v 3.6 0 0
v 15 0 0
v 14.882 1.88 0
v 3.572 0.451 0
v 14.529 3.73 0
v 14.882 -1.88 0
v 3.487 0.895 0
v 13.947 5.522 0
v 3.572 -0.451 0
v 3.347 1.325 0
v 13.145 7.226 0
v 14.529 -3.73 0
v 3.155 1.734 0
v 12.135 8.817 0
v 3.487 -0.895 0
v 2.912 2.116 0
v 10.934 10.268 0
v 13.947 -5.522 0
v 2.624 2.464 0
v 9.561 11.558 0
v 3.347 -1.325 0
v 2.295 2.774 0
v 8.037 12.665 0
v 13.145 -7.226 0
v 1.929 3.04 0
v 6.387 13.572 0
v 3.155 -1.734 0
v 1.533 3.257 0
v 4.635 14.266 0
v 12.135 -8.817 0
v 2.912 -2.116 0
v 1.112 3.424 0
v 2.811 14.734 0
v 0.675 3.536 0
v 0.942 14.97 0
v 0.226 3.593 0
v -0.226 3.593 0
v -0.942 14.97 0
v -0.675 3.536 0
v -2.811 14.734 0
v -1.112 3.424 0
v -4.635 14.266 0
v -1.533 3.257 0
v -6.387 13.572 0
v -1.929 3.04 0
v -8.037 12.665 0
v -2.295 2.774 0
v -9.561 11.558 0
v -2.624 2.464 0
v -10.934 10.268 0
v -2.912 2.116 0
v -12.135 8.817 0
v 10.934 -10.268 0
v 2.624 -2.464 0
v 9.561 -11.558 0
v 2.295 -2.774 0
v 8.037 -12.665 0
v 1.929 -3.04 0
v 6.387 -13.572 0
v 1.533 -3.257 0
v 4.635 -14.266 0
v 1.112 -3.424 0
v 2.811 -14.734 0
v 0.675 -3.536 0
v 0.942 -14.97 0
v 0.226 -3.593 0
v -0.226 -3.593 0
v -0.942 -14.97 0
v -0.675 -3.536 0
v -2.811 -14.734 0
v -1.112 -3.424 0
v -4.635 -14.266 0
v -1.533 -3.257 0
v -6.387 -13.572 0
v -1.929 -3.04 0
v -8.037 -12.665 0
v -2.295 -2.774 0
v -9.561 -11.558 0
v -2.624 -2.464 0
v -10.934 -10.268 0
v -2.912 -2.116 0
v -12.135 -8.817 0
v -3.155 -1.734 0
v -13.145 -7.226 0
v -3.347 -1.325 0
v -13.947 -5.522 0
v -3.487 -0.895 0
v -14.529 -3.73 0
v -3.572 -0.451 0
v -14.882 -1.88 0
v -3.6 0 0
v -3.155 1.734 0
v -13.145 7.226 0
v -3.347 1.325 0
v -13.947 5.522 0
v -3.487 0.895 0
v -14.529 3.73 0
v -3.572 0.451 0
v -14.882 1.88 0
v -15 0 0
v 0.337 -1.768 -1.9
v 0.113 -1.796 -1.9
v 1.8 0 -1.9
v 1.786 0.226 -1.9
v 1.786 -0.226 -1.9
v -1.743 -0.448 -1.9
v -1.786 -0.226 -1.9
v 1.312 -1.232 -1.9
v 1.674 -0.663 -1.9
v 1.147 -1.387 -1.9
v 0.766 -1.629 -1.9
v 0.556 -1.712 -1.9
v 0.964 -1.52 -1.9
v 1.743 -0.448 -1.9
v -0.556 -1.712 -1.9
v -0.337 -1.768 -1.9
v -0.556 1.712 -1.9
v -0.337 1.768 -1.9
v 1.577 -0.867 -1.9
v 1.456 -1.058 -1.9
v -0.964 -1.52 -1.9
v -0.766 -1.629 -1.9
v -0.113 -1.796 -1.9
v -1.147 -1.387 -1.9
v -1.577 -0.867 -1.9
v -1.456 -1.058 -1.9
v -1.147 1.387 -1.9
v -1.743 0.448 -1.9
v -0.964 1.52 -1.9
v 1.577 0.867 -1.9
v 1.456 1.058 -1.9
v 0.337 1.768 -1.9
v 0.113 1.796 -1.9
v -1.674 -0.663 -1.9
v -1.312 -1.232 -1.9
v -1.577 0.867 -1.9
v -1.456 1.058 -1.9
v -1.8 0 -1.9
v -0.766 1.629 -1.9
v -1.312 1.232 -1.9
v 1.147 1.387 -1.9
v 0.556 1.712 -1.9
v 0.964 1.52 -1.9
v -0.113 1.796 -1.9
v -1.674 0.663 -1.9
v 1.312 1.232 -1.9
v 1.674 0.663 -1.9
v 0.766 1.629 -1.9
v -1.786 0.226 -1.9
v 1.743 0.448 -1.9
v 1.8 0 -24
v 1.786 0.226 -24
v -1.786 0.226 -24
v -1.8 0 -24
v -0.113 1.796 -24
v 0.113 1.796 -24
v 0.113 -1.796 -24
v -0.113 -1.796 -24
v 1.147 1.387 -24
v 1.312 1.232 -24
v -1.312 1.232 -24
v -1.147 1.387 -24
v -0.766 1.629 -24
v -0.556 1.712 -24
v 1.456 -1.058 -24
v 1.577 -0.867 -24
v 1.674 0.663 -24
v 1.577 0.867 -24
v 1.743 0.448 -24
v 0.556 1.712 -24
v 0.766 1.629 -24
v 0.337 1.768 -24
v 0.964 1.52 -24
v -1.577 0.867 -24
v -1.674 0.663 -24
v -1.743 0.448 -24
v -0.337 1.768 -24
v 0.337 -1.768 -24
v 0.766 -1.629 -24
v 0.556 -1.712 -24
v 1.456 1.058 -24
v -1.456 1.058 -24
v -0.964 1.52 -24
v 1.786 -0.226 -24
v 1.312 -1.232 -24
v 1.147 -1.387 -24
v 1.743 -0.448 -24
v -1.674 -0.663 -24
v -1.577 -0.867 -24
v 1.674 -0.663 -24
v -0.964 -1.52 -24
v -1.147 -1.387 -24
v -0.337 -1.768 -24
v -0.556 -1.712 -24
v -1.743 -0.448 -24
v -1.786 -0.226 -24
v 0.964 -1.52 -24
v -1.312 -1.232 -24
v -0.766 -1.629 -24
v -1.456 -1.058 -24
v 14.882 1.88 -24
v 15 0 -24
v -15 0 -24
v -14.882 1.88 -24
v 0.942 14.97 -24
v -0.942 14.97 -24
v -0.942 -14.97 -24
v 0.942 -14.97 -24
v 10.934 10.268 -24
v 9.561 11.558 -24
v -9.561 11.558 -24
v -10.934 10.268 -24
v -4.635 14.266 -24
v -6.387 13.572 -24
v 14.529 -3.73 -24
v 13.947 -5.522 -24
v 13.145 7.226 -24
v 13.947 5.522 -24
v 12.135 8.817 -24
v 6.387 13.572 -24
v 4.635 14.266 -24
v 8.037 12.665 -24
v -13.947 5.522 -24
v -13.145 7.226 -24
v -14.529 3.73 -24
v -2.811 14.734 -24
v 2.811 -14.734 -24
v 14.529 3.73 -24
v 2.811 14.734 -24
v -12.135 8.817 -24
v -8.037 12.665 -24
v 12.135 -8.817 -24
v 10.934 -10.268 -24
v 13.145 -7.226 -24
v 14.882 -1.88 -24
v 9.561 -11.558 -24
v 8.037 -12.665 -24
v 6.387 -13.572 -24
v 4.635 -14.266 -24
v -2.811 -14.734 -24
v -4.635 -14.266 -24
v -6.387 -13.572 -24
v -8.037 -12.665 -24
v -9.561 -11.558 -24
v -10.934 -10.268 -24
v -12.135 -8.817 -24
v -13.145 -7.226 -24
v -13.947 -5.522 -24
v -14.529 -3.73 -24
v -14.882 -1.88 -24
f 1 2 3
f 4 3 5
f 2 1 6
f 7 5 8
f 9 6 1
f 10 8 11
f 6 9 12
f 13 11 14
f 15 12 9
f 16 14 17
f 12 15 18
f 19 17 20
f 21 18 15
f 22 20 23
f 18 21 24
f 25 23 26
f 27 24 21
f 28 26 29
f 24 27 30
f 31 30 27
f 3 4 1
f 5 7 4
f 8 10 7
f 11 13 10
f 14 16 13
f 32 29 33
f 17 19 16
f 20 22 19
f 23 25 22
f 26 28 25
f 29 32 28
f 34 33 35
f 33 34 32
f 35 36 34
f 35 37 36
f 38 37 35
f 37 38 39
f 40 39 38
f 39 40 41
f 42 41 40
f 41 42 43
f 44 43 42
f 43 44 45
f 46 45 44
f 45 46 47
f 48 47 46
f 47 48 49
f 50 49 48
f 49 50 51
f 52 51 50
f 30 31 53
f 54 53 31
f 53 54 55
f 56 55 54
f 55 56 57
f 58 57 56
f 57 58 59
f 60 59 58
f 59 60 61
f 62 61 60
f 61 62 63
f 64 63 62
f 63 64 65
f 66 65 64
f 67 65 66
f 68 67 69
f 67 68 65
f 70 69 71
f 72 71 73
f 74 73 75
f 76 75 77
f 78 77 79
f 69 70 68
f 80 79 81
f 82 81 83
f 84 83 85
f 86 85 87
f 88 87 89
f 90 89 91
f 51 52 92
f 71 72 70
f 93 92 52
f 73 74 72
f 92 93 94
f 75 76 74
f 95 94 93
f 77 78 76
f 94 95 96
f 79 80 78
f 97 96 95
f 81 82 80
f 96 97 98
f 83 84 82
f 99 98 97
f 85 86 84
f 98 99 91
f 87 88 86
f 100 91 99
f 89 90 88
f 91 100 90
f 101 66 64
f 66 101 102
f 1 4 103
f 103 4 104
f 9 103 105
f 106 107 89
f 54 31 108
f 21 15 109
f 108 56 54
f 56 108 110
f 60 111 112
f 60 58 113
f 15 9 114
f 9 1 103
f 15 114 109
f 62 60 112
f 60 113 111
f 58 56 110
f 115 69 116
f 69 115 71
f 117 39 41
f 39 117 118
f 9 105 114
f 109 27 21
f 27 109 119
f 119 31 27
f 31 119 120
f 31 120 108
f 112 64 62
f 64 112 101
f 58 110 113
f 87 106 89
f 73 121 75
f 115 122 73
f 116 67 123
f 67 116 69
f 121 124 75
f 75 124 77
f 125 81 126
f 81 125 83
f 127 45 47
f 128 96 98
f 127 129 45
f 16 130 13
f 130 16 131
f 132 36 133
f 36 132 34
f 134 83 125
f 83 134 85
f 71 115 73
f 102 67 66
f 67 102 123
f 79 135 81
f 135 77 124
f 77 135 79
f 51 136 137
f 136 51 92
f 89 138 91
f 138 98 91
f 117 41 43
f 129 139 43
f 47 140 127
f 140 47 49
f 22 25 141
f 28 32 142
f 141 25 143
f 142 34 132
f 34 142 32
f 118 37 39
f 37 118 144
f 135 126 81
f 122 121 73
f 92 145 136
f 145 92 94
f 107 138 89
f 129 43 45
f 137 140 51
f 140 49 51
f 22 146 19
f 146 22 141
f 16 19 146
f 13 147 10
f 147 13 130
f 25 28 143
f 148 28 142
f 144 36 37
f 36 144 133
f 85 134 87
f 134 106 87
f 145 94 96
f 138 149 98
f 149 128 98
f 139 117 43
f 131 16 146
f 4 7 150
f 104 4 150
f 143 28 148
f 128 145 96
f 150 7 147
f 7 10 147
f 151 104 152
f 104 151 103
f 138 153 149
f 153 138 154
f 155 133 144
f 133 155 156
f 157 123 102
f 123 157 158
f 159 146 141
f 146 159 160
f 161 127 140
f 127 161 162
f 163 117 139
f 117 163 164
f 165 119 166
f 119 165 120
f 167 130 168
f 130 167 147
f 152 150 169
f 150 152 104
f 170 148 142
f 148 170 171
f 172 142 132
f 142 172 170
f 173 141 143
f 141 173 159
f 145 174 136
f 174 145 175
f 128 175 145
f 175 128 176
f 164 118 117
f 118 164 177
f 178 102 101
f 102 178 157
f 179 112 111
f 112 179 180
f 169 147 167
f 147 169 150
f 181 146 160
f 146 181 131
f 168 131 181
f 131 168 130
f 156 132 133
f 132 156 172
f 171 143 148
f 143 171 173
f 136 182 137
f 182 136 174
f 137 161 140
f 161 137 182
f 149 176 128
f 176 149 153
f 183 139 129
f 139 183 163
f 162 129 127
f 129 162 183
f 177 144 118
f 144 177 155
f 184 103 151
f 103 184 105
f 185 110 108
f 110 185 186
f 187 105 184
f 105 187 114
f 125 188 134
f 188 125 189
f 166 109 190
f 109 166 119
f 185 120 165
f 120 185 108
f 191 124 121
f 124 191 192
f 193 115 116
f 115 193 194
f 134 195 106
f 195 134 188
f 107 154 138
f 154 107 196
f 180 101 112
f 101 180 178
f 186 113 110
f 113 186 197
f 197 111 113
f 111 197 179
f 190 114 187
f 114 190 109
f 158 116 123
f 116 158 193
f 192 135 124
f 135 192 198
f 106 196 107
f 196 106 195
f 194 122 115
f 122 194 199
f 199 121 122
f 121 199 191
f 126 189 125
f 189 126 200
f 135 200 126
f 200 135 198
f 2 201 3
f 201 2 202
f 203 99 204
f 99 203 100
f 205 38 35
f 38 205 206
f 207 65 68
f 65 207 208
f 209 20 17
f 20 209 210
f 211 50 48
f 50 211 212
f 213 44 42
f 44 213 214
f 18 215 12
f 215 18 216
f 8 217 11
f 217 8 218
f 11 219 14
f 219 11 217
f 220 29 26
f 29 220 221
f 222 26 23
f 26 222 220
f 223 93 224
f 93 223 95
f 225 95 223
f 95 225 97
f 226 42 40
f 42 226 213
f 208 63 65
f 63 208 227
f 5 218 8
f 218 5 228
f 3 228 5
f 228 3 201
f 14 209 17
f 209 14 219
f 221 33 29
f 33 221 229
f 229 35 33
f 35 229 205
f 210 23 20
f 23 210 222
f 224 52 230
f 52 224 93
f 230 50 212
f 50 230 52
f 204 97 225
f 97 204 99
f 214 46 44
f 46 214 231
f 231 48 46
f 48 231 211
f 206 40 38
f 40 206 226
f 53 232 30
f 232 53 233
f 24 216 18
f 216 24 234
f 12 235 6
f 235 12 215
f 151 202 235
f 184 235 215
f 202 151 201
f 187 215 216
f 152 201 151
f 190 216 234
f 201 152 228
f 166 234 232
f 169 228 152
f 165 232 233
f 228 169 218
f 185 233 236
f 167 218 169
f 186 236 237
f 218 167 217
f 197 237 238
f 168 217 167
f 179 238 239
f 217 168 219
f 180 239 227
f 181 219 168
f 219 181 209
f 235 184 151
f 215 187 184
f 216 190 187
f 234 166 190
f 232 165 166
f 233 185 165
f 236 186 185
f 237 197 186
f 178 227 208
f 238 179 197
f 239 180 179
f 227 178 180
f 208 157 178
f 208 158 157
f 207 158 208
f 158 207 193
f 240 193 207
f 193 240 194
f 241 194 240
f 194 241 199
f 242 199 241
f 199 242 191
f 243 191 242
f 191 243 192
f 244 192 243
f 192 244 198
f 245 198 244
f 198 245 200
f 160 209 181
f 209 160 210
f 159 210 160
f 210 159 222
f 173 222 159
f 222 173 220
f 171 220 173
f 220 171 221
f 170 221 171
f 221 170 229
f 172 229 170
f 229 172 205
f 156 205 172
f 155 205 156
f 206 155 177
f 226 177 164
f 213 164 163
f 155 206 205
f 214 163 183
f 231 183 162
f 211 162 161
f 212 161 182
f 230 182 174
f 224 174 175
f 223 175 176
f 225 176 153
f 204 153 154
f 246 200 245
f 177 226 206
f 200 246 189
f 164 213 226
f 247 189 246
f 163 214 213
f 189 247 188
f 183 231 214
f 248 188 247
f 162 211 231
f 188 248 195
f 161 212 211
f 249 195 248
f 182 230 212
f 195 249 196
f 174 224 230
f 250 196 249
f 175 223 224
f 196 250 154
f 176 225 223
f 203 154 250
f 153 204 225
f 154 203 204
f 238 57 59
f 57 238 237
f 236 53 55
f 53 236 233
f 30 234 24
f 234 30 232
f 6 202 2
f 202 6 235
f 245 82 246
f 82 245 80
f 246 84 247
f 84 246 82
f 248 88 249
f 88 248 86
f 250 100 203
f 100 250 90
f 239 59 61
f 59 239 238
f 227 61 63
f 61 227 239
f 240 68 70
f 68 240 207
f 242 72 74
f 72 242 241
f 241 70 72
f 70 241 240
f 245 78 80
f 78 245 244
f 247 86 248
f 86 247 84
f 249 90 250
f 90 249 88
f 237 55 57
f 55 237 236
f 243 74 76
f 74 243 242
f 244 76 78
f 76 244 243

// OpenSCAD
$fn = 50;

difference() {
	union() {
		translate(v = [0, 0, -24.0]) {
			cylinder(h = 24, r = 15.0);
		}
	}
	union() {
		translate(v = [0, 0, 0]) {
			rotate(a = [0, 0, 0]) {
				difference() {
					union() {
						translate(v = [0, 0, -27.0]) {
							cylinder(h = 27, r = 1.5);
						}
						translate(v = [0, 0, -1.9]) {
							cylinder(h = 1.9, r1 = 1.8, r2 = 3.6);
						}
						translate(v = [0, 0, -27.0]) {
							cylinder(h = 27, r = 1.8);
						}
						translate(v = [0, 0, -27.0]) {
							cylinder(h = 27, r = 1.5);
						}
					}
					union();
				}
			}
		}
	}
}
